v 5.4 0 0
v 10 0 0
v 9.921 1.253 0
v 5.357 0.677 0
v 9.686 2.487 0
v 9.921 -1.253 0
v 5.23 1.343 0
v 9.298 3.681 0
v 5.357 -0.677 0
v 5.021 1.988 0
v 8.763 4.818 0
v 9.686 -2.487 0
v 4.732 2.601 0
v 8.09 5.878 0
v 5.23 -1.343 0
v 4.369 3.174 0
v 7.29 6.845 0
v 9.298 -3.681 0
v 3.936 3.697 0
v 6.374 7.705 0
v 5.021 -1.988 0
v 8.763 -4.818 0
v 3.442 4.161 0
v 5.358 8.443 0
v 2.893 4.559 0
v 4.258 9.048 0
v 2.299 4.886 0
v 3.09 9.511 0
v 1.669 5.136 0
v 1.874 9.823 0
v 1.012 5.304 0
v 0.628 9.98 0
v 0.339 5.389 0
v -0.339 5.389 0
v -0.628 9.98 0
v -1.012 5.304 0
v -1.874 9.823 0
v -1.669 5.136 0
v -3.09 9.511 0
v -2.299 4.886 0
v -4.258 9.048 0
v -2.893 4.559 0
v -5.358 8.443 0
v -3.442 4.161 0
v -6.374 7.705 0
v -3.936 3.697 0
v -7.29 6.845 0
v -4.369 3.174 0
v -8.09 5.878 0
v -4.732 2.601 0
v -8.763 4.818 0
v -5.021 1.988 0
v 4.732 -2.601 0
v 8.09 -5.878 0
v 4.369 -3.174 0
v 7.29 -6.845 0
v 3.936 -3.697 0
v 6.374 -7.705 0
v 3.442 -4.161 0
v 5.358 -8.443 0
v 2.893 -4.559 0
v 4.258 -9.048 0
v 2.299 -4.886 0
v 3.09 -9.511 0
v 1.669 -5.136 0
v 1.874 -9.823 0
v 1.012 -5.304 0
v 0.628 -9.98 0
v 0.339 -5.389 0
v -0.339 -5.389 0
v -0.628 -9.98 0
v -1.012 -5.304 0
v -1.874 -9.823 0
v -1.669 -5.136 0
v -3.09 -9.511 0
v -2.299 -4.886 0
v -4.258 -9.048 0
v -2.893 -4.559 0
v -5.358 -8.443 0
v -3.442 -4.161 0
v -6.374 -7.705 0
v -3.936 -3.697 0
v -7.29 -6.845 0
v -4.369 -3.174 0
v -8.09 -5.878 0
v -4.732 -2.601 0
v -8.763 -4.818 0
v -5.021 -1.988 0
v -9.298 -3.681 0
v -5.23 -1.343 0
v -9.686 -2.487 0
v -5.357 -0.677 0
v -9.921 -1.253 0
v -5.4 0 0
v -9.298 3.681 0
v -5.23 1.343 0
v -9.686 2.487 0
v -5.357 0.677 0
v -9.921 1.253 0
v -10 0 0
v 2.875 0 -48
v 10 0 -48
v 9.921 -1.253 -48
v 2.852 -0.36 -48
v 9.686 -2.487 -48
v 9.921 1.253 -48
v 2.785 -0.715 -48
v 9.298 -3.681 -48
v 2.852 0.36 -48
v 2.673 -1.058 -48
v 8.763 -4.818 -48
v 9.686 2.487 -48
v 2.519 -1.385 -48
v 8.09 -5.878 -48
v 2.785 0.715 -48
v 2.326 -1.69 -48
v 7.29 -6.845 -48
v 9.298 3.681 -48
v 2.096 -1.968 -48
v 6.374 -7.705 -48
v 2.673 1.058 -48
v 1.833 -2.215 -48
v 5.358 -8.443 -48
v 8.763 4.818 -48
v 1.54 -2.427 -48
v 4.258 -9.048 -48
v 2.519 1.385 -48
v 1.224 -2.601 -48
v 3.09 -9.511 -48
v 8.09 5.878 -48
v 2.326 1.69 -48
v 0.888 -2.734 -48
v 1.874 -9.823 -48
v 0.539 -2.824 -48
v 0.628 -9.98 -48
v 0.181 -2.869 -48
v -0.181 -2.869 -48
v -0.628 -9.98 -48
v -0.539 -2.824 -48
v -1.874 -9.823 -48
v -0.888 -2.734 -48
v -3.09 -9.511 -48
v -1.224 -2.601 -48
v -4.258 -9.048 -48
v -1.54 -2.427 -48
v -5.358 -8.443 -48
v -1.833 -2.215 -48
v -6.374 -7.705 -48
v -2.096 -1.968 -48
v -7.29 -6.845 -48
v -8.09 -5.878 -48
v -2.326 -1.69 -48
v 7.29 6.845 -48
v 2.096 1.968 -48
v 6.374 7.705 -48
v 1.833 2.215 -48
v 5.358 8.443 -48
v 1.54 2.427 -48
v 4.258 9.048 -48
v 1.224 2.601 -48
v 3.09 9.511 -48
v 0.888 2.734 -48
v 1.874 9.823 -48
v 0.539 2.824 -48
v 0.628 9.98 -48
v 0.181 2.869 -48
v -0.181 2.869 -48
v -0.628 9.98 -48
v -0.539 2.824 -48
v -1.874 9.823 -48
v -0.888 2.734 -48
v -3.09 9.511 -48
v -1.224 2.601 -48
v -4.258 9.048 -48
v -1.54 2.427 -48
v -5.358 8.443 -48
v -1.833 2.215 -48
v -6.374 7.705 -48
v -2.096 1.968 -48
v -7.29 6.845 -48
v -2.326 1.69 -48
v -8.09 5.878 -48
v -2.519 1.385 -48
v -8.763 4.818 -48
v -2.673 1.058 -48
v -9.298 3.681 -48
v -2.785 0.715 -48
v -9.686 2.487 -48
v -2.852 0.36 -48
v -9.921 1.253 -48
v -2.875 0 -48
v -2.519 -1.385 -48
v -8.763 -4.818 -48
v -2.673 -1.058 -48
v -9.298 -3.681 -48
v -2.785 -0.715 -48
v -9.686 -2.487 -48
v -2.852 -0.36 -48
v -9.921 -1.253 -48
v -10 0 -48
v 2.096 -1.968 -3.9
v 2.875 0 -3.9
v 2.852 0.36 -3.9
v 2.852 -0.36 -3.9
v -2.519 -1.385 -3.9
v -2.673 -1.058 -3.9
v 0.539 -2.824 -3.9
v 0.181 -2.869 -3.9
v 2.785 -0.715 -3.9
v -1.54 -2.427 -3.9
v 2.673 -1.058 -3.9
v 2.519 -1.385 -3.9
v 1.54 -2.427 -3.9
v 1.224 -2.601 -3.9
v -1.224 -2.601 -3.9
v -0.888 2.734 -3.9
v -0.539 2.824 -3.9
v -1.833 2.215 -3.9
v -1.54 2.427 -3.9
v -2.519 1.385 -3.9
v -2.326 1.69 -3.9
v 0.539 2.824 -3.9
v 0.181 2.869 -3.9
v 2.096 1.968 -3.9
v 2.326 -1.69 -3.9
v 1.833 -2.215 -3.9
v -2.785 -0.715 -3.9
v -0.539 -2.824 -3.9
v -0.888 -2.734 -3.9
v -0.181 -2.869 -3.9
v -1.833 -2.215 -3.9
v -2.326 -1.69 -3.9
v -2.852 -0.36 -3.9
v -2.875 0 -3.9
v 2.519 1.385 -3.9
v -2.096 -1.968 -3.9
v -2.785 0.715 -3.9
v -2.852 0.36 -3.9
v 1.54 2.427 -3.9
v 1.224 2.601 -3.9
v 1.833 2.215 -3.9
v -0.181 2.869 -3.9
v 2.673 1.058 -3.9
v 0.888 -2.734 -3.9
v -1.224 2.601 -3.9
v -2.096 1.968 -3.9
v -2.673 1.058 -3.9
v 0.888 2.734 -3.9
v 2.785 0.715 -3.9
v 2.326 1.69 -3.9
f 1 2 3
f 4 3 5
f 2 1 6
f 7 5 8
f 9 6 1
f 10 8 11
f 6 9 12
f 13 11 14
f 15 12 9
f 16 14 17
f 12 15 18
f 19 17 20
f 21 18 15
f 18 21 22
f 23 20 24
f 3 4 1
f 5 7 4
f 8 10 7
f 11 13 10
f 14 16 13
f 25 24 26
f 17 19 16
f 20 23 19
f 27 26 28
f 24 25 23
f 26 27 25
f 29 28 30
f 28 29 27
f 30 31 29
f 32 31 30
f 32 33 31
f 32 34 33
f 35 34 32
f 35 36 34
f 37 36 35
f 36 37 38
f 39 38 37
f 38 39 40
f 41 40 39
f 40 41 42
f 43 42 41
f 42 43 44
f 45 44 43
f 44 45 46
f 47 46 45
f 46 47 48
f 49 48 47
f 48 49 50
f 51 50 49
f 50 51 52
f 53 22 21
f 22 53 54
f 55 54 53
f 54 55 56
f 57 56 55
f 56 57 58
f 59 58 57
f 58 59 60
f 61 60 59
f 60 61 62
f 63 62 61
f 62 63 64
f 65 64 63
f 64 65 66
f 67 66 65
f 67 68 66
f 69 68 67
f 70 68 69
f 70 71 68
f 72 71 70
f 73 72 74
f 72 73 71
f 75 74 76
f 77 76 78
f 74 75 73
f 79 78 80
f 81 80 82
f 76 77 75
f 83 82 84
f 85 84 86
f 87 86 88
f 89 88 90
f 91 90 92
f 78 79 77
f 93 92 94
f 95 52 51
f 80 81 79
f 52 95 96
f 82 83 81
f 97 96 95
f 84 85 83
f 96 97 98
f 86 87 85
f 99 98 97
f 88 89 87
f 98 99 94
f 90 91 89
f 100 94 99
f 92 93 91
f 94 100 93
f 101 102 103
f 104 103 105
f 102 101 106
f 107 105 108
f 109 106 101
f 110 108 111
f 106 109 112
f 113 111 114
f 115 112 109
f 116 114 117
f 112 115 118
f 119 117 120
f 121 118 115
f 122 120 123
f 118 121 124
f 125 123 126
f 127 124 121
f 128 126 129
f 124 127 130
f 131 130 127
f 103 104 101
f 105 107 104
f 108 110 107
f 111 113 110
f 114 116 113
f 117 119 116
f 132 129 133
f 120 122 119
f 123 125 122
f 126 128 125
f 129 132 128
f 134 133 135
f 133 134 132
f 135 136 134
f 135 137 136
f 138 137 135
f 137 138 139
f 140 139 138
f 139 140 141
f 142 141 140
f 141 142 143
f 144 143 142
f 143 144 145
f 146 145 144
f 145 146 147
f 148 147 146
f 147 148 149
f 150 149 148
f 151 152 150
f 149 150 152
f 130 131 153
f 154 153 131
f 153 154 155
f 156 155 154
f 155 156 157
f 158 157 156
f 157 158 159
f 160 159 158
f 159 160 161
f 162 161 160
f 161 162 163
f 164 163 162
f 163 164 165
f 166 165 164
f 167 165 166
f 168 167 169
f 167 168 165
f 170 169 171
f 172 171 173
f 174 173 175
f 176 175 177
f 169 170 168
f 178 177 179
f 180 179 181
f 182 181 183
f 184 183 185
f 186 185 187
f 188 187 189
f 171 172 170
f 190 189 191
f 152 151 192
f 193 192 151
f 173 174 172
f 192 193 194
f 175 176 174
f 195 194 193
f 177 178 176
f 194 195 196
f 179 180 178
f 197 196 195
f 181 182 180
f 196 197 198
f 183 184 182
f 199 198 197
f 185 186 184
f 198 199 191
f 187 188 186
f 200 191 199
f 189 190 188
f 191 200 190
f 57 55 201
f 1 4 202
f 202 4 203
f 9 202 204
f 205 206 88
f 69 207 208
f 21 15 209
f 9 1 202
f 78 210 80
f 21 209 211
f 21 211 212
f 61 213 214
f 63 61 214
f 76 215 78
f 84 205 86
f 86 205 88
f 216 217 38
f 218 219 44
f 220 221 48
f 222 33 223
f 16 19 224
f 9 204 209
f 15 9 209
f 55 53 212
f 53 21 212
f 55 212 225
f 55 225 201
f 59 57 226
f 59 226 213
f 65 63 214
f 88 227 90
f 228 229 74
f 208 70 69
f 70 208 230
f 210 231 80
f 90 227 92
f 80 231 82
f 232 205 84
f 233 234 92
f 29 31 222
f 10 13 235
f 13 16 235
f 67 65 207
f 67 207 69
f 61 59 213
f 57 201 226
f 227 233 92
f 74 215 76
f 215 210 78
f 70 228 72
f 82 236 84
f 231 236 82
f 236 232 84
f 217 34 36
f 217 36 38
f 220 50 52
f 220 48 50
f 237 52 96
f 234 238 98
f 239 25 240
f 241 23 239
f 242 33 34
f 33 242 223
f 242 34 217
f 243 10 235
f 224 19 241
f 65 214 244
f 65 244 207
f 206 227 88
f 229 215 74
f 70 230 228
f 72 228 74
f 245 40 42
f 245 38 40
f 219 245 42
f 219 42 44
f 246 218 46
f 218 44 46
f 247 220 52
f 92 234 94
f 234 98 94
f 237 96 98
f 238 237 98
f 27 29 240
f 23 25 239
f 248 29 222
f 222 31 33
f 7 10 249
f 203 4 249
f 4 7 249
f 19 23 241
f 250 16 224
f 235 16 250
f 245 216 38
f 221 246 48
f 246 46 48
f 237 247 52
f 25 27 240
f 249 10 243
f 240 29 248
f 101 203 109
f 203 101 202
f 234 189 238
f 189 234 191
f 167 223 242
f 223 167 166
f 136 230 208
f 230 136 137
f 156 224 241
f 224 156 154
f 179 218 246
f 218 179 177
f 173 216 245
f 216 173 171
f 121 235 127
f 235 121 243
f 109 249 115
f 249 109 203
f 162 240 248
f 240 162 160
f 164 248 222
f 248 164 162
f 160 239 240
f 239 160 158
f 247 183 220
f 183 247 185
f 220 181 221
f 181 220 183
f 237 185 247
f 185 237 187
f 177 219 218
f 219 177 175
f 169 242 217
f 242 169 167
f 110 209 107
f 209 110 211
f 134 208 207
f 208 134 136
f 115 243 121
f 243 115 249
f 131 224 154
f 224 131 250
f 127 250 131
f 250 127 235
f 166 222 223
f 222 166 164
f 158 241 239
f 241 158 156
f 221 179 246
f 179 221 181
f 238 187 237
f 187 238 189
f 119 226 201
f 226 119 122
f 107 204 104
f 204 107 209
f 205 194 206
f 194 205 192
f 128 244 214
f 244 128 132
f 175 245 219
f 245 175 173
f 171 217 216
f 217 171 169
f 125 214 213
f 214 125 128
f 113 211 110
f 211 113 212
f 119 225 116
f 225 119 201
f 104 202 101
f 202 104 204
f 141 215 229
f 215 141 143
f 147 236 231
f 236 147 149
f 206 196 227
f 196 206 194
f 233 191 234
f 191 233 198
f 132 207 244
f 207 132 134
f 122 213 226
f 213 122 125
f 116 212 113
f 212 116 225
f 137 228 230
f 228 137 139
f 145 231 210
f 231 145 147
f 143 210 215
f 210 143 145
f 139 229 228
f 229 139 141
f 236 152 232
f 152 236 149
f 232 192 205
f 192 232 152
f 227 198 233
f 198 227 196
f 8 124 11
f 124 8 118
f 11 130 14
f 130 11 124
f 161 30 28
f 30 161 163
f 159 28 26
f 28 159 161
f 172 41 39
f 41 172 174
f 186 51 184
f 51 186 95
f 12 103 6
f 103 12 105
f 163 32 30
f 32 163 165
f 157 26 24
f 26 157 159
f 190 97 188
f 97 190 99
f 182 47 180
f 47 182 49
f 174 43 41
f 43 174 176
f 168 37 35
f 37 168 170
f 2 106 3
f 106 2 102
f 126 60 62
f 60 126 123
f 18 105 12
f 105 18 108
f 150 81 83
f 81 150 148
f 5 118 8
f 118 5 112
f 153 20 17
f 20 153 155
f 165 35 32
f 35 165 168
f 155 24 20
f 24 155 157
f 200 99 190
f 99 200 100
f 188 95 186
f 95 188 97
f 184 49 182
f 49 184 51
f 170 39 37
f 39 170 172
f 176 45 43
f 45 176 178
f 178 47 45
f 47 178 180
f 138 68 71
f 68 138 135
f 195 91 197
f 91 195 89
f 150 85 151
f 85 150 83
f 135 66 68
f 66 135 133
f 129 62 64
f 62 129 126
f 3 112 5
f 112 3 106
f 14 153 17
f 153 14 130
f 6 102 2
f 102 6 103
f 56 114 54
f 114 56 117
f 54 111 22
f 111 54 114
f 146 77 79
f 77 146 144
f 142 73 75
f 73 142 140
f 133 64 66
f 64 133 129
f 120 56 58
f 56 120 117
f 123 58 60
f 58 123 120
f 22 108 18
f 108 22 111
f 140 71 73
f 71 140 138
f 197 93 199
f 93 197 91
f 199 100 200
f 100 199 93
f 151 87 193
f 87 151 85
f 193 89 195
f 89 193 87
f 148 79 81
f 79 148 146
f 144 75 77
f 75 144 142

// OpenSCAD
$fn = 50;


difference() {
	union() {
		translate(v = [0, 0, -48.0000000000]) {
			cylinder(h = 48, r = 10.0000000000);
		}
		cylinder(h = 0, r = 19.0000000000);
	}
	union() {
		translate(v = [0, 0, 0]) {
			rotate(a = [0, 0, 0]) {
				difference() {
					union() {
						#translate(v = [0, 0, -48.0000000000]) {
							cylinder(h = 48, r = 2.6000000000);
						}
						#translate(v = [0, 0, -3.9000000000]) {
							cylinder(h = 3.9000000000, r = 10.0000000000, r1 = 2.8750000000, r2 = 5.4000000000);
						}
						#translate(v = [0, 0, -48.0000000000]) {
							cylinder(h = 48, r = 2.8750000000);
						}
						#translate(v = [0, 0, -48.0000000000]) {
							cylinder(h = 48, r = 2.6000000000);
						}
					}
					union();
				}
			}
		}
	}
}
